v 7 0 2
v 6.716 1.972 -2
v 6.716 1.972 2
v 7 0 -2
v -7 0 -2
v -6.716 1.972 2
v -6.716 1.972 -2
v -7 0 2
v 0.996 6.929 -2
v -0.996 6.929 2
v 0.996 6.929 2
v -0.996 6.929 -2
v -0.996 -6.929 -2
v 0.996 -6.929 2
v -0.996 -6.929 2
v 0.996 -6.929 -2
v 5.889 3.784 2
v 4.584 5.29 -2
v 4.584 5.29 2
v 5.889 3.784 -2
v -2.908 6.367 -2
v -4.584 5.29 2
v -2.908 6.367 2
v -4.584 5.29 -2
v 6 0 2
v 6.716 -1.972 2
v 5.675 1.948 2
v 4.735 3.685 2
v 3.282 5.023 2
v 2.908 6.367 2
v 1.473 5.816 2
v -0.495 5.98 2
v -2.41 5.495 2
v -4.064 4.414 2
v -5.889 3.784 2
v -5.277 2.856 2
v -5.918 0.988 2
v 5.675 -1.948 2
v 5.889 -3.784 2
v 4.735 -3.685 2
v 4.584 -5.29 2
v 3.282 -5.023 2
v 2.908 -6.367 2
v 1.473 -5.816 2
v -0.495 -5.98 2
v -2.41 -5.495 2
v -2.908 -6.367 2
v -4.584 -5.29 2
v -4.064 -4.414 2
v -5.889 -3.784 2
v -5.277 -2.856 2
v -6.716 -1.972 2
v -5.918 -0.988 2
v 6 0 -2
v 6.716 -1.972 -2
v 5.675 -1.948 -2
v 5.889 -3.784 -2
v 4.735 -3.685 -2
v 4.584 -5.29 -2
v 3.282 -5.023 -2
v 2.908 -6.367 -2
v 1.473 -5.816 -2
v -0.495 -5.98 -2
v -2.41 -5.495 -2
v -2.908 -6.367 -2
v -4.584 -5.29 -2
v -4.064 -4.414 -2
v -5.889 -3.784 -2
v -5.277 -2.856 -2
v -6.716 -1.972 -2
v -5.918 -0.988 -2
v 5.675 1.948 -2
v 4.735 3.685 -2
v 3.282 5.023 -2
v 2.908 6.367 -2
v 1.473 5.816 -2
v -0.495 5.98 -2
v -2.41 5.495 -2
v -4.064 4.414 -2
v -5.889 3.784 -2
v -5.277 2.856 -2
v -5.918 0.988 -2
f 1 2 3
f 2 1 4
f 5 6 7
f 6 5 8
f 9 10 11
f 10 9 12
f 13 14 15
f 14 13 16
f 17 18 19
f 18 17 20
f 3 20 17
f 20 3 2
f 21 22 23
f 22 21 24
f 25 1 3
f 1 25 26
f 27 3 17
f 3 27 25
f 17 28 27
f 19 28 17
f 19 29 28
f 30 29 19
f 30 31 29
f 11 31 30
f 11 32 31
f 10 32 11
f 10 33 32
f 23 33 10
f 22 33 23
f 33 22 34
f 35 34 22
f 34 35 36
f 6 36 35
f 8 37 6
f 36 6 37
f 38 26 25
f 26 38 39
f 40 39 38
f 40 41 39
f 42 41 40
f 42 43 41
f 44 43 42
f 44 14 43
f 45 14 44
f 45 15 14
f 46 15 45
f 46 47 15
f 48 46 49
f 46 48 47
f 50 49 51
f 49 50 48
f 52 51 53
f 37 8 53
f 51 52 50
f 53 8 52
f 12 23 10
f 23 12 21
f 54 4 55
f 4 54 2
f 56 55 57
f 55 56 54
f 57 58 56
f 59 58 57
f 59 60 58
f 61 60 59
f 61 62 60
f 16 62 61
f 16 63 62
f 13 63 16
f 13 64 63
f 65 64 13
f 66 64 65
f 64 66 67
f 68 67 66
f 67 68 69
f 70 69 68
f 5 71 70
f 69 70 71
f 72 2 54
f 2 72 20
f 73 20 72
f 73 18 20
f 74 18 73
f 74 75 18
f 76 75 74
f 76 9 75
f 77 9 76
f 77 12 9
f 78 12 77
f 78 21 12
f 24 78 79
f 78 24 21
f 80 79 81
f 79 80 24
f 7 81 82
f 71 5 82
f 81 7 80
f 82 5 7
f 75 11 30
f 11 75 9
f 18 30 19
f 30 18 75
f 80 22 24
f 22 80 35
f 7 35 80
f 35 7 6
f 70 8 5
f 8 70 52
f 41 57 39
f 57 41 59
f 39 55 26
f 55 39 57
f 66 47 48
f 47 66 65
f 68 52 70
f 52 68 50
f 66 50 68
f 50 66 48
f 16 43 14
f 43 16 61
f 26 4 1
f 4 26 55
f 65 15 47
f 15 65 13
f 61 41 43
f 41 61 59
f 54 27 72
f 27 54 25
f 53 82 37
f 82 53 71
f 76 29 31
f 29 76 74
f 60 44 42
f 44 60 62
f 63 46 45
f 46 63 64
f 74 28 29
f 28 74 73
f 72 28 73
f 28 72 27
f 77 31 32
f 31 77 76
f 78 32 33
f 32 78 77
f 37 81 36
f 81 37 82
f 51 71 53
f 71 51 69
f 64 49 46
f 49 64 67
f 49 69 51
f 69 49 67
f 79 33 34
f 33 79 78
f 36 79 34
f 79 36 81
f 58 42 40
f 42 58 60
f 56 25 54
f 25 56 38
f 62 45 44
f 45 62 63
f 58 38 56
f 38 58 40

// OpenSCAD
use <mcad/involute_gears.scad>

hole_diameter = 12;
full_length = 100;
max_height = 12;

size_ratio = 0.25;
circular_pitch = 300;

// small gear
sm_diameter = full_length * size_ratio;
sm_teeth = sm_diameter / (circular_pitch / 180);

// large gear
lg_diameter = full_length * (1 - size_ratio);
lg_teeth = lg_diameter / (circular_pitch / 180);

echo("lg_teeth", lg_teeth);
echo("sm_teeth", sm_teeth);
echo("ratio", lg_teeth / sm_teeth);

difference() {
cylinder(max_height / 3, d=hole_diameter + 2, center=true);
// hole
cylinder(max_height + 100, d=hole_diameter, center=true);
}
